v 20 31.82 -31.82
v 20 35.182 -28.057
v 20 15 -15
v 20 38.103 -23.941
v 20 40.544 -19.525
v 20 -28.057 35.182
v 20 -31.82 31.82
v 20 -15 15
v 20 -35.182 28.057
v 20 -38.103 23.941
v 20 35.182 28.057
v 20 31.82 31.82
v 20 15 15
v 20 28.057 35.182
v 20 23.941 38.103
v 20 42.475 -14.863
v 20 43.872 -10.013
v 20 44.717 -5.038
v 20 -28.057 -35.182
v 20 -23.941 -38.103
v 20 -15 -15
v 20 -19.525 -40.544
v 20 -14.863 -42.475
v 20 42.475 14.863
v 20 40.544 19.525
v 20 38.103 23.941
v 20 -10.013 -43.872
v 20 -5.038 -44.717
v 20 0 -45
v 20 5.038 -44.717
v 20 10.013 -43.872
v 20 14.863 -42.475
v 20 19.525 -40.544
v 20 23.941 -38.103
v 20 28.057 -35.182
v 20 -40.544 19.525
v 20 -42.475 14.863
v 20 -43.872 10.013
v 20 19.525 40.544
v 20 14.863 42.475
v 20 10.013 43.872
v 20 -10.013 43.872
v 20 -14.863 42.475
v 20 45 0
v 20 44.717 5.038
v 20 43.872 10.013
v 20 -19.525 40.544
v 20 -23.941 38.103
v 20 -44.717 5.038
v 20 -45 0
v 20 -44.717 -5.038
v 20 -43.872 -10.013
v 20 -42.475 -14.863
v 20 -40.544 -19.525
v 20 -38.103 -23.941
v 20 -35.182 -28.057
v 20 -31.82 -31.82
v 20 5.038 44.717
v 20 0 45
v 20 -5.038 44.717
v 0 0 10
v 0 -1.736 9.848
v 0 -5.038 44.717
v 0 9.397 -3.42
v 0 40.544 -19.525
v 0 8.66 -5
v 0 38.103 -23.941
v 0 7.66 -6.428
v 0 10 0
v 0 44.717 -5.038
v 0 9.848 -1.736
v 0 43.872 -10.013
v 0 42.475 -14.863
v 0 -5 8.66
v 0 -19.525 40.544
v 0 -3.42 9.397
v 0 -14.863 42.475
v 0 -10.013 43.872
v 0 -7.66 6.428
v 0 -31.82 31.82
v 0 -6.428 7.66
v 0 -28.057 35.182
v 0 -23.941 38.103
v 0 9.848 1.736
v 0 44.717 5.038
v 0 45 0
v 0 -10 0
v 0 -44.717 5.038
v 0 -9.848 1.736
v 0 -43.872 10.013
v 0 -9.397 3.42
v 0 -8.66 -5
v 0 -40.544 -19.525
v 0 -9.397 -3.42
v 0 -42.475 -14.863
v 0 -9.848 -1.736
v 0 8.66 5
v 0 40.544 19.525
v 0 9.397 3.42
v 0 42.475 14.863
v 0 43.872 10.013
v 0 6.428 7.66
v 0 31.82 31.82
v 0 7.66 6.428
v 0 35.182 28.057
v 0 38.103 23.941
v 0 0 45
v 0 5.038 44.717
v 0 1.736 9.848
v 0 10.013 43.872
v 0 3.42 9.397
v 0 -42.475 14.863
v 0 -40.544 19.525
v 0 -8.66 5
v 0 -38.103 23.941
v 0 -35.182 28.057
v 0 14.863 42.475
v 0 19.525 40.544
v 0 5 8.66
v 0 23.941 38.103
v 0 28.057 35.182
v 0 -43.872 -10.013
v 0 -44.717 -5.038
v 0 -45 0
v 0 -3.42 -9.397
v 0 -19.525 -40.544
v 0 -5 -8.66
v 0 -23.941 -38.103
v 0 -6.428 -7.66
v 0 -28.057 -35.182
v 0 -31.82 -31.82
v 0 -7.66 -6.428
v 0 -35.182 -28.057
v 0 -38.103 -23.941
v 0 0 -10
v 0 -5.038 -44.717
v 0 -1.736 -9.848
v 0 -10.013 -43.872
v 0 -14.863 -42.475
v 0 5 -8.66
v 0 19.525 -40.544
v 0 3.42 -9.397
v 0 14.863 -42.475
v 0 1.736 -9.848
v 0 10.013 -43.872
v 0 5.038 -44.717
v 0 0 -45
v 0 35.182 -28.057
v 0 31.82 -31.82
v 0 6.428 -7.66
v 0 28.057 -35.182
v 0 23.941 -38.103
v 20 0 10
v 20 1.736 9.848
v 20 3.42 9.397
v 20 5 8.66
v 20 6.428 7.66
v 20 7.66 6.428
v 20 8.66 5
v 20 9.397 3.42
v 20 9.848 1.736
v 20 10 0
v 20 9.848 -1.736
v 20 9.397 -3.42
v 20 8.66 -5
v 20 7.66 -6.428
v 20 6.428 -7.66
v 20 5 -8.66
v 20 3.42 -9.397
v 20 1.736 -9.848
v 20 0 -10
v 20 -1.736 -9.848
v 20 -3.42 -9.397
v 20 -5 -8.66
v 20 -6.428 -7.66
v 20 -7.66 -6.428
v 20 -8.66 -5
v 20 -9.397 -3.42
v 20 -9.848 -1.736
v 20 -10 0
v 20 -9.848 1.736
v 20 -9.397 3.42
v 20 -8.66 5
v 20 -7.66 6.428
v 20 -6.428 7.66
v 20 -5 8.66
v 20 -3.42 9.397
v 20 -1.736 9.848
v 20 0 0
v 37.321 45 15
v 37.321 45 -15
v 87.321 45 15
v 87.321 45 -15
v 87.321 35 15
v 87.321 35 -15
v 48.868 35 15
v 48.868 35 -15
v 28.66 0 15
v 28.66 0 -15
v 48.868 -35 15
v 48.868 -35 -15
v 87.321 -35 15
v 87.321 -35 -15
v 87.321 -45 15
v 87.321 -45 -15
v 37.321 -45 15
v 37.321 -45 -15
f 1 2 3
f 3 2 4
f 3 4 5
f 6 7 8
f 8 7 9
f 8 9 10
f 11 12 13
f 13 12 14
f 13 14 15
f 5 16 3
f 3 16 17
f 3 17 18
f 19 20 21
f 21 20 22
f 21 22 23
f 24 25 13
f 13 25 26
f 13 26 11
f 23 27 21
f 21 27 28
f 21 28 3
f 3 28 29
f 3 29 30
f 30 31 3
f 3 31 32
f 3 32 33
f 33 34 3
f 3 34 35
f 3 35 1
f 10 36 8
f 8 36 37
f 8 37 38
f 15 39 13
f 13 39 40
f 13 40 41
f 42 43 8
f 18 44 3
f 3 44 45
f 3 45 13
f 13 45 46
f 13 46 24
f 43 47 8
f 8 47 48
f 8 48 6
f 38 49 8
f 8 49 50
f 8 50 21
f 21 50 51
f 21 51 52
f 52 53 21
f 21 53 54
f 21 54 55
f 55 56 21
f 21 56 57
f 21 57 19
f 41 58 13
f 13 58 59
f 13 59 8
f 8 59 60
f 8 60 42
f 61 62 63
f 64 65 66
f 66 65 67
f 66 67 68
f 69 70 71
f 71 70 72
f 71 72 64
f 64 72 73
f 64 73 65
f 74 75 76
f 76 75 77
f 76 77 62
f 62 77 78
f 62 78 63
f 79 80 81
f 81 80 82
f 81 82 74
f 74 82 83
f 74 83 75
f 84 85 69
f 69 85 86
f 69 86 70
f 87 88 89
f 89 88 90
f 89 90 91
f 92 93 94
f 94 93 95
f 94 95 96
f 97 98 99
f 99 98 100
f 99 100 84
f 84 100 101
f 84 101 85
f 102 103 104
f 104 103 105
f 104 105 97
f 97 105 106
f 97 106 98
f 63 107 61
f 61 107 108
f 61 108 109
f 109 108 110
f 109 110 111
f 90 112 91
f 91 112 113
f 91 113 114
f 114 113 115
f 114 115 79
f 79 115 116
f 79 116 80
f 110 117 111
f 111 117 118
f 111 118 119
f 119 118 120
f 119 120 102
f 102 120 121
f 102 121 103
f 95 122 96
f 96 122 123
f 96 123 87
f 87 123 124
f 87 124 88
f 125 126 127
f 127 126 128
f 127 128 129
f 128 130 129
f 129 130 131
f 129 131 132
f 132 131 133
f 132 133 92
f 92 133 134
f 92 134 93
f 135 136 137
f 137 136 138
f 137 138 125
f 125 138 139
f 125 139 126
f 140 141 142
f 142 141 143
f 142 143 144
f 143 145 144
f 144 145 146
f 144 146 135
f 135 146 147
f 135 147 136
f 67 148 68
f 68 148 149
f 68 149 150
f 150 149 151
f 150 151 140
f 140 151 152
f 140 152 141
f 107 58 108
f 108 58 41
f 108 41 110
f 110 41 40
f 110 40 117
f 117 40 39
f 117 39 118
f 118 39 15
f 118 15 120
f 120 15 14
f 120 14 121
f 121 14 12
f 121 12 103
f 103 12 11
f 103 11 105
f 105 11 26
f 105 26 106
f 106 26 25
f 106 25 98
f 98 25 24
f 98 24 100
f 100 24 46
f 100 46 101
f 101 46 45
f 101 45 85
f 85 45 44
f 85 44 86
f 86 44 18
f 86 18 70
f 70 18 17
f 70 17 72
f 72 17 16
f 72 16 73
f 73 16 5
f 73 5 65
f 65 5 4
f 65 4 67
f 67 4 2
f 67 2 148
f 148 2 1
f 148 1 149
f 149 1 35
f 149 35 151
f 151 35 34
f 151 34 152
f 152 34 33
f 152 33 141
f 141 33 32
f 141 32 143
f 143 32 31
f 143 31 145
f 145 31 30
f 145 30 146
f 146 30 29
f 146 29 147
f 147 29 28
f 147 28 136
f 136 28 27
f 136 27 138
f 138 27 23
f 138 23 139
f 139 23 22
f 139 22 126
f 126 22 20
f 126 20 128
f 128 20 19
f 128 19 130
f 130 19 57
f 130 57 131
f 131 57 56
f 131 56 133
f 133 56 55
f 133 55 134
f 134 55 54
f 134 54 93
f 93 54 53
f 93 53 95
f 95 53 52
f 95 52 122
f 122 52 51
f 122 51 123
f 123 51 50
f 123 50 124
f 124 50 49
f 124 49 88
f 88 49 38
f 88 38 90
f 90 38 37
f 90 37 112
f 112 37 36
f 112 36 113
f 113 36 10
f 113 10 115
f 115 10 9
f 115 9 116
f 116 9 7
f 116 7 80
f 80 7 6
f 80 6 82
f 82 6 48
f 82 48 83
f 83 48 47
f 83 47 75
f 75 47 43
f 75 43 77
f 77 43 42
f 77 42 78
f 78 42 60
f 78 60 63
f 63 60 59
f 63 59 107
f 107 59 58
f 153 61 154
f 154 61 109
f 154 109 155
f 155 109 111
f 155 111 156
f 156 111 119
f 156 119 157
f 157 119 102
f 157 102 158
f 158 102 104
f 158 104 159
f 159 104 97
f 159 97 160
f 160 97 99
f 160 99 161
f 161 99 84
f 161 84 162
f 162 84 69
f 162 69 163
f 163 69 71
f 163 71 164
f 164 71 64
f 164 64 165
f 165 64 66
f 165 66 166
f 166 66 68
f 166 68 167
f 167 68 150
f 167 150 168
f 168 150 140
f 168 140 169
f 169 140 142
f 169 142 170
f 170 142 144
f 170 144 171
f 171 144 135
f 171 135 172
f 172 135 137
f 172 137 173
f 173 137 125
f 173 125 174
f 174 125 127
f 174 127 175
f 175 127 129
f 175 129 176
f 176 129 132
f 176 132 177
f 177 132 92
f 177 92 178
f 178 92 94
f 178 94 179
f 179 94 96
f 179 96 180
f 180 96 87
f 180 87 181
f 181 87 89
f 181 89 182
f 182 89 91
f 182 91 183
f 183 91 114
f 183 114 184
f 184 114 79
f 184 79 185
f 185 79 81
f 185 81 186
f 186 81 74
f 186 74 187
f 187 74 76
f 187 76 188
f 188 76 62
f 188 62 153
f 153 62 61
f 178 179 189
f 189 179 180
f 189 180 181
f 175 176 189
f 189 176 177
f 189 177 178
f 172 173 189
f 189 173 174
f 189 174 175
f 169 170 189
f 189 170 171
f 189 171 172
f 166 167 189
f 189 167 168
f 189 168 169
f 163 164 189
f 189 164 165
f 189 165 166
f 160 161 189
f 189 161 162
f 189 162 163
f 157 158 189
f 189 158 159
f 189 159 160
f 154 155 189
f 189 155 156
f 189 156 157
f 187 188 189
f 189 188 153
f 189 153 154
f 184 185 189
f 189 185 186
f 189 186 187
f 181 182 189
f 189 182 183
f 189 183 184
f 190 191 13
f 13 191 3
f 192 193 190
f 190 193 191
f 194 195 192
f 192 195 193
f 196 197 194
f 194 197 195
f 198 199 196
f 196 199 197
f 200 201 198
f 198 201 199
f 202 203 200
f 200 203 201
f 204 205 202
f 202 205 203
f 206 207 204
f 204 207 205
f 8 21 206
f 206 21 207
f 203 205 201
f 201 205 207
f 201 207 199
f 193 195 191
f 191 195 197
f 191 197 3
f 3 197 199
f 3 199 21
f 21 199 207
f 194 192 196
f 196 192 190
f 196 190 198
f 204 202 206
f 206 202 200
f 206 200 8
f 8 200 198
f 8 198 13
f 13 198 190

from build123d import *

# Parameters (mm, degrees)
SKETCH1_R                = 45
SKETCH1_R_2              = 10
BOSS_EXTRUDE1_DEPTH      = 20
BOSS_EXTRUDE2_DEPTH      = 15
BOSS_EXTRUDE2_DEPTH_BACK = 15


with BuildPart() as part:
    # Sketch1 → Boss-Extrude1 (new body)
    with BuildSketch(Plane(origin=(0, 0, 0), x_dir=(0, 0, -1), z_dir=(1, 0, 0))):
        Circle(SKETCH1_R)
        Circle(SKETCH1_R_2, mode=Mode.SUBTRACT)
    extrude(amount=BOSS_EXTRUDE1_DEPTH)

    # Sketch4 → Boss-Extrude2 (add, two sides: drawn at the far end of the back side and taken through both)
    with BuildSketch(Plane.XY.offset(-BOSS_EXTRUDE2_DEPTH_BACK)):
        Polygon((20, -15), (37.320508076, -45), (87.320508076, -45), (87.320508076, -35), (48.867513459, -35), (28.660254038, 0), (48.867513459, 35), (87.320508076, 35), (87.320508076, 45), (37.320508076, 45), (20, 15), align=None)
    extrude(amount=BOSS_EXTRUDE2_DEPTH + BOSS_EXTRUDE2_DEPTH_BACK)


solid = part.part
